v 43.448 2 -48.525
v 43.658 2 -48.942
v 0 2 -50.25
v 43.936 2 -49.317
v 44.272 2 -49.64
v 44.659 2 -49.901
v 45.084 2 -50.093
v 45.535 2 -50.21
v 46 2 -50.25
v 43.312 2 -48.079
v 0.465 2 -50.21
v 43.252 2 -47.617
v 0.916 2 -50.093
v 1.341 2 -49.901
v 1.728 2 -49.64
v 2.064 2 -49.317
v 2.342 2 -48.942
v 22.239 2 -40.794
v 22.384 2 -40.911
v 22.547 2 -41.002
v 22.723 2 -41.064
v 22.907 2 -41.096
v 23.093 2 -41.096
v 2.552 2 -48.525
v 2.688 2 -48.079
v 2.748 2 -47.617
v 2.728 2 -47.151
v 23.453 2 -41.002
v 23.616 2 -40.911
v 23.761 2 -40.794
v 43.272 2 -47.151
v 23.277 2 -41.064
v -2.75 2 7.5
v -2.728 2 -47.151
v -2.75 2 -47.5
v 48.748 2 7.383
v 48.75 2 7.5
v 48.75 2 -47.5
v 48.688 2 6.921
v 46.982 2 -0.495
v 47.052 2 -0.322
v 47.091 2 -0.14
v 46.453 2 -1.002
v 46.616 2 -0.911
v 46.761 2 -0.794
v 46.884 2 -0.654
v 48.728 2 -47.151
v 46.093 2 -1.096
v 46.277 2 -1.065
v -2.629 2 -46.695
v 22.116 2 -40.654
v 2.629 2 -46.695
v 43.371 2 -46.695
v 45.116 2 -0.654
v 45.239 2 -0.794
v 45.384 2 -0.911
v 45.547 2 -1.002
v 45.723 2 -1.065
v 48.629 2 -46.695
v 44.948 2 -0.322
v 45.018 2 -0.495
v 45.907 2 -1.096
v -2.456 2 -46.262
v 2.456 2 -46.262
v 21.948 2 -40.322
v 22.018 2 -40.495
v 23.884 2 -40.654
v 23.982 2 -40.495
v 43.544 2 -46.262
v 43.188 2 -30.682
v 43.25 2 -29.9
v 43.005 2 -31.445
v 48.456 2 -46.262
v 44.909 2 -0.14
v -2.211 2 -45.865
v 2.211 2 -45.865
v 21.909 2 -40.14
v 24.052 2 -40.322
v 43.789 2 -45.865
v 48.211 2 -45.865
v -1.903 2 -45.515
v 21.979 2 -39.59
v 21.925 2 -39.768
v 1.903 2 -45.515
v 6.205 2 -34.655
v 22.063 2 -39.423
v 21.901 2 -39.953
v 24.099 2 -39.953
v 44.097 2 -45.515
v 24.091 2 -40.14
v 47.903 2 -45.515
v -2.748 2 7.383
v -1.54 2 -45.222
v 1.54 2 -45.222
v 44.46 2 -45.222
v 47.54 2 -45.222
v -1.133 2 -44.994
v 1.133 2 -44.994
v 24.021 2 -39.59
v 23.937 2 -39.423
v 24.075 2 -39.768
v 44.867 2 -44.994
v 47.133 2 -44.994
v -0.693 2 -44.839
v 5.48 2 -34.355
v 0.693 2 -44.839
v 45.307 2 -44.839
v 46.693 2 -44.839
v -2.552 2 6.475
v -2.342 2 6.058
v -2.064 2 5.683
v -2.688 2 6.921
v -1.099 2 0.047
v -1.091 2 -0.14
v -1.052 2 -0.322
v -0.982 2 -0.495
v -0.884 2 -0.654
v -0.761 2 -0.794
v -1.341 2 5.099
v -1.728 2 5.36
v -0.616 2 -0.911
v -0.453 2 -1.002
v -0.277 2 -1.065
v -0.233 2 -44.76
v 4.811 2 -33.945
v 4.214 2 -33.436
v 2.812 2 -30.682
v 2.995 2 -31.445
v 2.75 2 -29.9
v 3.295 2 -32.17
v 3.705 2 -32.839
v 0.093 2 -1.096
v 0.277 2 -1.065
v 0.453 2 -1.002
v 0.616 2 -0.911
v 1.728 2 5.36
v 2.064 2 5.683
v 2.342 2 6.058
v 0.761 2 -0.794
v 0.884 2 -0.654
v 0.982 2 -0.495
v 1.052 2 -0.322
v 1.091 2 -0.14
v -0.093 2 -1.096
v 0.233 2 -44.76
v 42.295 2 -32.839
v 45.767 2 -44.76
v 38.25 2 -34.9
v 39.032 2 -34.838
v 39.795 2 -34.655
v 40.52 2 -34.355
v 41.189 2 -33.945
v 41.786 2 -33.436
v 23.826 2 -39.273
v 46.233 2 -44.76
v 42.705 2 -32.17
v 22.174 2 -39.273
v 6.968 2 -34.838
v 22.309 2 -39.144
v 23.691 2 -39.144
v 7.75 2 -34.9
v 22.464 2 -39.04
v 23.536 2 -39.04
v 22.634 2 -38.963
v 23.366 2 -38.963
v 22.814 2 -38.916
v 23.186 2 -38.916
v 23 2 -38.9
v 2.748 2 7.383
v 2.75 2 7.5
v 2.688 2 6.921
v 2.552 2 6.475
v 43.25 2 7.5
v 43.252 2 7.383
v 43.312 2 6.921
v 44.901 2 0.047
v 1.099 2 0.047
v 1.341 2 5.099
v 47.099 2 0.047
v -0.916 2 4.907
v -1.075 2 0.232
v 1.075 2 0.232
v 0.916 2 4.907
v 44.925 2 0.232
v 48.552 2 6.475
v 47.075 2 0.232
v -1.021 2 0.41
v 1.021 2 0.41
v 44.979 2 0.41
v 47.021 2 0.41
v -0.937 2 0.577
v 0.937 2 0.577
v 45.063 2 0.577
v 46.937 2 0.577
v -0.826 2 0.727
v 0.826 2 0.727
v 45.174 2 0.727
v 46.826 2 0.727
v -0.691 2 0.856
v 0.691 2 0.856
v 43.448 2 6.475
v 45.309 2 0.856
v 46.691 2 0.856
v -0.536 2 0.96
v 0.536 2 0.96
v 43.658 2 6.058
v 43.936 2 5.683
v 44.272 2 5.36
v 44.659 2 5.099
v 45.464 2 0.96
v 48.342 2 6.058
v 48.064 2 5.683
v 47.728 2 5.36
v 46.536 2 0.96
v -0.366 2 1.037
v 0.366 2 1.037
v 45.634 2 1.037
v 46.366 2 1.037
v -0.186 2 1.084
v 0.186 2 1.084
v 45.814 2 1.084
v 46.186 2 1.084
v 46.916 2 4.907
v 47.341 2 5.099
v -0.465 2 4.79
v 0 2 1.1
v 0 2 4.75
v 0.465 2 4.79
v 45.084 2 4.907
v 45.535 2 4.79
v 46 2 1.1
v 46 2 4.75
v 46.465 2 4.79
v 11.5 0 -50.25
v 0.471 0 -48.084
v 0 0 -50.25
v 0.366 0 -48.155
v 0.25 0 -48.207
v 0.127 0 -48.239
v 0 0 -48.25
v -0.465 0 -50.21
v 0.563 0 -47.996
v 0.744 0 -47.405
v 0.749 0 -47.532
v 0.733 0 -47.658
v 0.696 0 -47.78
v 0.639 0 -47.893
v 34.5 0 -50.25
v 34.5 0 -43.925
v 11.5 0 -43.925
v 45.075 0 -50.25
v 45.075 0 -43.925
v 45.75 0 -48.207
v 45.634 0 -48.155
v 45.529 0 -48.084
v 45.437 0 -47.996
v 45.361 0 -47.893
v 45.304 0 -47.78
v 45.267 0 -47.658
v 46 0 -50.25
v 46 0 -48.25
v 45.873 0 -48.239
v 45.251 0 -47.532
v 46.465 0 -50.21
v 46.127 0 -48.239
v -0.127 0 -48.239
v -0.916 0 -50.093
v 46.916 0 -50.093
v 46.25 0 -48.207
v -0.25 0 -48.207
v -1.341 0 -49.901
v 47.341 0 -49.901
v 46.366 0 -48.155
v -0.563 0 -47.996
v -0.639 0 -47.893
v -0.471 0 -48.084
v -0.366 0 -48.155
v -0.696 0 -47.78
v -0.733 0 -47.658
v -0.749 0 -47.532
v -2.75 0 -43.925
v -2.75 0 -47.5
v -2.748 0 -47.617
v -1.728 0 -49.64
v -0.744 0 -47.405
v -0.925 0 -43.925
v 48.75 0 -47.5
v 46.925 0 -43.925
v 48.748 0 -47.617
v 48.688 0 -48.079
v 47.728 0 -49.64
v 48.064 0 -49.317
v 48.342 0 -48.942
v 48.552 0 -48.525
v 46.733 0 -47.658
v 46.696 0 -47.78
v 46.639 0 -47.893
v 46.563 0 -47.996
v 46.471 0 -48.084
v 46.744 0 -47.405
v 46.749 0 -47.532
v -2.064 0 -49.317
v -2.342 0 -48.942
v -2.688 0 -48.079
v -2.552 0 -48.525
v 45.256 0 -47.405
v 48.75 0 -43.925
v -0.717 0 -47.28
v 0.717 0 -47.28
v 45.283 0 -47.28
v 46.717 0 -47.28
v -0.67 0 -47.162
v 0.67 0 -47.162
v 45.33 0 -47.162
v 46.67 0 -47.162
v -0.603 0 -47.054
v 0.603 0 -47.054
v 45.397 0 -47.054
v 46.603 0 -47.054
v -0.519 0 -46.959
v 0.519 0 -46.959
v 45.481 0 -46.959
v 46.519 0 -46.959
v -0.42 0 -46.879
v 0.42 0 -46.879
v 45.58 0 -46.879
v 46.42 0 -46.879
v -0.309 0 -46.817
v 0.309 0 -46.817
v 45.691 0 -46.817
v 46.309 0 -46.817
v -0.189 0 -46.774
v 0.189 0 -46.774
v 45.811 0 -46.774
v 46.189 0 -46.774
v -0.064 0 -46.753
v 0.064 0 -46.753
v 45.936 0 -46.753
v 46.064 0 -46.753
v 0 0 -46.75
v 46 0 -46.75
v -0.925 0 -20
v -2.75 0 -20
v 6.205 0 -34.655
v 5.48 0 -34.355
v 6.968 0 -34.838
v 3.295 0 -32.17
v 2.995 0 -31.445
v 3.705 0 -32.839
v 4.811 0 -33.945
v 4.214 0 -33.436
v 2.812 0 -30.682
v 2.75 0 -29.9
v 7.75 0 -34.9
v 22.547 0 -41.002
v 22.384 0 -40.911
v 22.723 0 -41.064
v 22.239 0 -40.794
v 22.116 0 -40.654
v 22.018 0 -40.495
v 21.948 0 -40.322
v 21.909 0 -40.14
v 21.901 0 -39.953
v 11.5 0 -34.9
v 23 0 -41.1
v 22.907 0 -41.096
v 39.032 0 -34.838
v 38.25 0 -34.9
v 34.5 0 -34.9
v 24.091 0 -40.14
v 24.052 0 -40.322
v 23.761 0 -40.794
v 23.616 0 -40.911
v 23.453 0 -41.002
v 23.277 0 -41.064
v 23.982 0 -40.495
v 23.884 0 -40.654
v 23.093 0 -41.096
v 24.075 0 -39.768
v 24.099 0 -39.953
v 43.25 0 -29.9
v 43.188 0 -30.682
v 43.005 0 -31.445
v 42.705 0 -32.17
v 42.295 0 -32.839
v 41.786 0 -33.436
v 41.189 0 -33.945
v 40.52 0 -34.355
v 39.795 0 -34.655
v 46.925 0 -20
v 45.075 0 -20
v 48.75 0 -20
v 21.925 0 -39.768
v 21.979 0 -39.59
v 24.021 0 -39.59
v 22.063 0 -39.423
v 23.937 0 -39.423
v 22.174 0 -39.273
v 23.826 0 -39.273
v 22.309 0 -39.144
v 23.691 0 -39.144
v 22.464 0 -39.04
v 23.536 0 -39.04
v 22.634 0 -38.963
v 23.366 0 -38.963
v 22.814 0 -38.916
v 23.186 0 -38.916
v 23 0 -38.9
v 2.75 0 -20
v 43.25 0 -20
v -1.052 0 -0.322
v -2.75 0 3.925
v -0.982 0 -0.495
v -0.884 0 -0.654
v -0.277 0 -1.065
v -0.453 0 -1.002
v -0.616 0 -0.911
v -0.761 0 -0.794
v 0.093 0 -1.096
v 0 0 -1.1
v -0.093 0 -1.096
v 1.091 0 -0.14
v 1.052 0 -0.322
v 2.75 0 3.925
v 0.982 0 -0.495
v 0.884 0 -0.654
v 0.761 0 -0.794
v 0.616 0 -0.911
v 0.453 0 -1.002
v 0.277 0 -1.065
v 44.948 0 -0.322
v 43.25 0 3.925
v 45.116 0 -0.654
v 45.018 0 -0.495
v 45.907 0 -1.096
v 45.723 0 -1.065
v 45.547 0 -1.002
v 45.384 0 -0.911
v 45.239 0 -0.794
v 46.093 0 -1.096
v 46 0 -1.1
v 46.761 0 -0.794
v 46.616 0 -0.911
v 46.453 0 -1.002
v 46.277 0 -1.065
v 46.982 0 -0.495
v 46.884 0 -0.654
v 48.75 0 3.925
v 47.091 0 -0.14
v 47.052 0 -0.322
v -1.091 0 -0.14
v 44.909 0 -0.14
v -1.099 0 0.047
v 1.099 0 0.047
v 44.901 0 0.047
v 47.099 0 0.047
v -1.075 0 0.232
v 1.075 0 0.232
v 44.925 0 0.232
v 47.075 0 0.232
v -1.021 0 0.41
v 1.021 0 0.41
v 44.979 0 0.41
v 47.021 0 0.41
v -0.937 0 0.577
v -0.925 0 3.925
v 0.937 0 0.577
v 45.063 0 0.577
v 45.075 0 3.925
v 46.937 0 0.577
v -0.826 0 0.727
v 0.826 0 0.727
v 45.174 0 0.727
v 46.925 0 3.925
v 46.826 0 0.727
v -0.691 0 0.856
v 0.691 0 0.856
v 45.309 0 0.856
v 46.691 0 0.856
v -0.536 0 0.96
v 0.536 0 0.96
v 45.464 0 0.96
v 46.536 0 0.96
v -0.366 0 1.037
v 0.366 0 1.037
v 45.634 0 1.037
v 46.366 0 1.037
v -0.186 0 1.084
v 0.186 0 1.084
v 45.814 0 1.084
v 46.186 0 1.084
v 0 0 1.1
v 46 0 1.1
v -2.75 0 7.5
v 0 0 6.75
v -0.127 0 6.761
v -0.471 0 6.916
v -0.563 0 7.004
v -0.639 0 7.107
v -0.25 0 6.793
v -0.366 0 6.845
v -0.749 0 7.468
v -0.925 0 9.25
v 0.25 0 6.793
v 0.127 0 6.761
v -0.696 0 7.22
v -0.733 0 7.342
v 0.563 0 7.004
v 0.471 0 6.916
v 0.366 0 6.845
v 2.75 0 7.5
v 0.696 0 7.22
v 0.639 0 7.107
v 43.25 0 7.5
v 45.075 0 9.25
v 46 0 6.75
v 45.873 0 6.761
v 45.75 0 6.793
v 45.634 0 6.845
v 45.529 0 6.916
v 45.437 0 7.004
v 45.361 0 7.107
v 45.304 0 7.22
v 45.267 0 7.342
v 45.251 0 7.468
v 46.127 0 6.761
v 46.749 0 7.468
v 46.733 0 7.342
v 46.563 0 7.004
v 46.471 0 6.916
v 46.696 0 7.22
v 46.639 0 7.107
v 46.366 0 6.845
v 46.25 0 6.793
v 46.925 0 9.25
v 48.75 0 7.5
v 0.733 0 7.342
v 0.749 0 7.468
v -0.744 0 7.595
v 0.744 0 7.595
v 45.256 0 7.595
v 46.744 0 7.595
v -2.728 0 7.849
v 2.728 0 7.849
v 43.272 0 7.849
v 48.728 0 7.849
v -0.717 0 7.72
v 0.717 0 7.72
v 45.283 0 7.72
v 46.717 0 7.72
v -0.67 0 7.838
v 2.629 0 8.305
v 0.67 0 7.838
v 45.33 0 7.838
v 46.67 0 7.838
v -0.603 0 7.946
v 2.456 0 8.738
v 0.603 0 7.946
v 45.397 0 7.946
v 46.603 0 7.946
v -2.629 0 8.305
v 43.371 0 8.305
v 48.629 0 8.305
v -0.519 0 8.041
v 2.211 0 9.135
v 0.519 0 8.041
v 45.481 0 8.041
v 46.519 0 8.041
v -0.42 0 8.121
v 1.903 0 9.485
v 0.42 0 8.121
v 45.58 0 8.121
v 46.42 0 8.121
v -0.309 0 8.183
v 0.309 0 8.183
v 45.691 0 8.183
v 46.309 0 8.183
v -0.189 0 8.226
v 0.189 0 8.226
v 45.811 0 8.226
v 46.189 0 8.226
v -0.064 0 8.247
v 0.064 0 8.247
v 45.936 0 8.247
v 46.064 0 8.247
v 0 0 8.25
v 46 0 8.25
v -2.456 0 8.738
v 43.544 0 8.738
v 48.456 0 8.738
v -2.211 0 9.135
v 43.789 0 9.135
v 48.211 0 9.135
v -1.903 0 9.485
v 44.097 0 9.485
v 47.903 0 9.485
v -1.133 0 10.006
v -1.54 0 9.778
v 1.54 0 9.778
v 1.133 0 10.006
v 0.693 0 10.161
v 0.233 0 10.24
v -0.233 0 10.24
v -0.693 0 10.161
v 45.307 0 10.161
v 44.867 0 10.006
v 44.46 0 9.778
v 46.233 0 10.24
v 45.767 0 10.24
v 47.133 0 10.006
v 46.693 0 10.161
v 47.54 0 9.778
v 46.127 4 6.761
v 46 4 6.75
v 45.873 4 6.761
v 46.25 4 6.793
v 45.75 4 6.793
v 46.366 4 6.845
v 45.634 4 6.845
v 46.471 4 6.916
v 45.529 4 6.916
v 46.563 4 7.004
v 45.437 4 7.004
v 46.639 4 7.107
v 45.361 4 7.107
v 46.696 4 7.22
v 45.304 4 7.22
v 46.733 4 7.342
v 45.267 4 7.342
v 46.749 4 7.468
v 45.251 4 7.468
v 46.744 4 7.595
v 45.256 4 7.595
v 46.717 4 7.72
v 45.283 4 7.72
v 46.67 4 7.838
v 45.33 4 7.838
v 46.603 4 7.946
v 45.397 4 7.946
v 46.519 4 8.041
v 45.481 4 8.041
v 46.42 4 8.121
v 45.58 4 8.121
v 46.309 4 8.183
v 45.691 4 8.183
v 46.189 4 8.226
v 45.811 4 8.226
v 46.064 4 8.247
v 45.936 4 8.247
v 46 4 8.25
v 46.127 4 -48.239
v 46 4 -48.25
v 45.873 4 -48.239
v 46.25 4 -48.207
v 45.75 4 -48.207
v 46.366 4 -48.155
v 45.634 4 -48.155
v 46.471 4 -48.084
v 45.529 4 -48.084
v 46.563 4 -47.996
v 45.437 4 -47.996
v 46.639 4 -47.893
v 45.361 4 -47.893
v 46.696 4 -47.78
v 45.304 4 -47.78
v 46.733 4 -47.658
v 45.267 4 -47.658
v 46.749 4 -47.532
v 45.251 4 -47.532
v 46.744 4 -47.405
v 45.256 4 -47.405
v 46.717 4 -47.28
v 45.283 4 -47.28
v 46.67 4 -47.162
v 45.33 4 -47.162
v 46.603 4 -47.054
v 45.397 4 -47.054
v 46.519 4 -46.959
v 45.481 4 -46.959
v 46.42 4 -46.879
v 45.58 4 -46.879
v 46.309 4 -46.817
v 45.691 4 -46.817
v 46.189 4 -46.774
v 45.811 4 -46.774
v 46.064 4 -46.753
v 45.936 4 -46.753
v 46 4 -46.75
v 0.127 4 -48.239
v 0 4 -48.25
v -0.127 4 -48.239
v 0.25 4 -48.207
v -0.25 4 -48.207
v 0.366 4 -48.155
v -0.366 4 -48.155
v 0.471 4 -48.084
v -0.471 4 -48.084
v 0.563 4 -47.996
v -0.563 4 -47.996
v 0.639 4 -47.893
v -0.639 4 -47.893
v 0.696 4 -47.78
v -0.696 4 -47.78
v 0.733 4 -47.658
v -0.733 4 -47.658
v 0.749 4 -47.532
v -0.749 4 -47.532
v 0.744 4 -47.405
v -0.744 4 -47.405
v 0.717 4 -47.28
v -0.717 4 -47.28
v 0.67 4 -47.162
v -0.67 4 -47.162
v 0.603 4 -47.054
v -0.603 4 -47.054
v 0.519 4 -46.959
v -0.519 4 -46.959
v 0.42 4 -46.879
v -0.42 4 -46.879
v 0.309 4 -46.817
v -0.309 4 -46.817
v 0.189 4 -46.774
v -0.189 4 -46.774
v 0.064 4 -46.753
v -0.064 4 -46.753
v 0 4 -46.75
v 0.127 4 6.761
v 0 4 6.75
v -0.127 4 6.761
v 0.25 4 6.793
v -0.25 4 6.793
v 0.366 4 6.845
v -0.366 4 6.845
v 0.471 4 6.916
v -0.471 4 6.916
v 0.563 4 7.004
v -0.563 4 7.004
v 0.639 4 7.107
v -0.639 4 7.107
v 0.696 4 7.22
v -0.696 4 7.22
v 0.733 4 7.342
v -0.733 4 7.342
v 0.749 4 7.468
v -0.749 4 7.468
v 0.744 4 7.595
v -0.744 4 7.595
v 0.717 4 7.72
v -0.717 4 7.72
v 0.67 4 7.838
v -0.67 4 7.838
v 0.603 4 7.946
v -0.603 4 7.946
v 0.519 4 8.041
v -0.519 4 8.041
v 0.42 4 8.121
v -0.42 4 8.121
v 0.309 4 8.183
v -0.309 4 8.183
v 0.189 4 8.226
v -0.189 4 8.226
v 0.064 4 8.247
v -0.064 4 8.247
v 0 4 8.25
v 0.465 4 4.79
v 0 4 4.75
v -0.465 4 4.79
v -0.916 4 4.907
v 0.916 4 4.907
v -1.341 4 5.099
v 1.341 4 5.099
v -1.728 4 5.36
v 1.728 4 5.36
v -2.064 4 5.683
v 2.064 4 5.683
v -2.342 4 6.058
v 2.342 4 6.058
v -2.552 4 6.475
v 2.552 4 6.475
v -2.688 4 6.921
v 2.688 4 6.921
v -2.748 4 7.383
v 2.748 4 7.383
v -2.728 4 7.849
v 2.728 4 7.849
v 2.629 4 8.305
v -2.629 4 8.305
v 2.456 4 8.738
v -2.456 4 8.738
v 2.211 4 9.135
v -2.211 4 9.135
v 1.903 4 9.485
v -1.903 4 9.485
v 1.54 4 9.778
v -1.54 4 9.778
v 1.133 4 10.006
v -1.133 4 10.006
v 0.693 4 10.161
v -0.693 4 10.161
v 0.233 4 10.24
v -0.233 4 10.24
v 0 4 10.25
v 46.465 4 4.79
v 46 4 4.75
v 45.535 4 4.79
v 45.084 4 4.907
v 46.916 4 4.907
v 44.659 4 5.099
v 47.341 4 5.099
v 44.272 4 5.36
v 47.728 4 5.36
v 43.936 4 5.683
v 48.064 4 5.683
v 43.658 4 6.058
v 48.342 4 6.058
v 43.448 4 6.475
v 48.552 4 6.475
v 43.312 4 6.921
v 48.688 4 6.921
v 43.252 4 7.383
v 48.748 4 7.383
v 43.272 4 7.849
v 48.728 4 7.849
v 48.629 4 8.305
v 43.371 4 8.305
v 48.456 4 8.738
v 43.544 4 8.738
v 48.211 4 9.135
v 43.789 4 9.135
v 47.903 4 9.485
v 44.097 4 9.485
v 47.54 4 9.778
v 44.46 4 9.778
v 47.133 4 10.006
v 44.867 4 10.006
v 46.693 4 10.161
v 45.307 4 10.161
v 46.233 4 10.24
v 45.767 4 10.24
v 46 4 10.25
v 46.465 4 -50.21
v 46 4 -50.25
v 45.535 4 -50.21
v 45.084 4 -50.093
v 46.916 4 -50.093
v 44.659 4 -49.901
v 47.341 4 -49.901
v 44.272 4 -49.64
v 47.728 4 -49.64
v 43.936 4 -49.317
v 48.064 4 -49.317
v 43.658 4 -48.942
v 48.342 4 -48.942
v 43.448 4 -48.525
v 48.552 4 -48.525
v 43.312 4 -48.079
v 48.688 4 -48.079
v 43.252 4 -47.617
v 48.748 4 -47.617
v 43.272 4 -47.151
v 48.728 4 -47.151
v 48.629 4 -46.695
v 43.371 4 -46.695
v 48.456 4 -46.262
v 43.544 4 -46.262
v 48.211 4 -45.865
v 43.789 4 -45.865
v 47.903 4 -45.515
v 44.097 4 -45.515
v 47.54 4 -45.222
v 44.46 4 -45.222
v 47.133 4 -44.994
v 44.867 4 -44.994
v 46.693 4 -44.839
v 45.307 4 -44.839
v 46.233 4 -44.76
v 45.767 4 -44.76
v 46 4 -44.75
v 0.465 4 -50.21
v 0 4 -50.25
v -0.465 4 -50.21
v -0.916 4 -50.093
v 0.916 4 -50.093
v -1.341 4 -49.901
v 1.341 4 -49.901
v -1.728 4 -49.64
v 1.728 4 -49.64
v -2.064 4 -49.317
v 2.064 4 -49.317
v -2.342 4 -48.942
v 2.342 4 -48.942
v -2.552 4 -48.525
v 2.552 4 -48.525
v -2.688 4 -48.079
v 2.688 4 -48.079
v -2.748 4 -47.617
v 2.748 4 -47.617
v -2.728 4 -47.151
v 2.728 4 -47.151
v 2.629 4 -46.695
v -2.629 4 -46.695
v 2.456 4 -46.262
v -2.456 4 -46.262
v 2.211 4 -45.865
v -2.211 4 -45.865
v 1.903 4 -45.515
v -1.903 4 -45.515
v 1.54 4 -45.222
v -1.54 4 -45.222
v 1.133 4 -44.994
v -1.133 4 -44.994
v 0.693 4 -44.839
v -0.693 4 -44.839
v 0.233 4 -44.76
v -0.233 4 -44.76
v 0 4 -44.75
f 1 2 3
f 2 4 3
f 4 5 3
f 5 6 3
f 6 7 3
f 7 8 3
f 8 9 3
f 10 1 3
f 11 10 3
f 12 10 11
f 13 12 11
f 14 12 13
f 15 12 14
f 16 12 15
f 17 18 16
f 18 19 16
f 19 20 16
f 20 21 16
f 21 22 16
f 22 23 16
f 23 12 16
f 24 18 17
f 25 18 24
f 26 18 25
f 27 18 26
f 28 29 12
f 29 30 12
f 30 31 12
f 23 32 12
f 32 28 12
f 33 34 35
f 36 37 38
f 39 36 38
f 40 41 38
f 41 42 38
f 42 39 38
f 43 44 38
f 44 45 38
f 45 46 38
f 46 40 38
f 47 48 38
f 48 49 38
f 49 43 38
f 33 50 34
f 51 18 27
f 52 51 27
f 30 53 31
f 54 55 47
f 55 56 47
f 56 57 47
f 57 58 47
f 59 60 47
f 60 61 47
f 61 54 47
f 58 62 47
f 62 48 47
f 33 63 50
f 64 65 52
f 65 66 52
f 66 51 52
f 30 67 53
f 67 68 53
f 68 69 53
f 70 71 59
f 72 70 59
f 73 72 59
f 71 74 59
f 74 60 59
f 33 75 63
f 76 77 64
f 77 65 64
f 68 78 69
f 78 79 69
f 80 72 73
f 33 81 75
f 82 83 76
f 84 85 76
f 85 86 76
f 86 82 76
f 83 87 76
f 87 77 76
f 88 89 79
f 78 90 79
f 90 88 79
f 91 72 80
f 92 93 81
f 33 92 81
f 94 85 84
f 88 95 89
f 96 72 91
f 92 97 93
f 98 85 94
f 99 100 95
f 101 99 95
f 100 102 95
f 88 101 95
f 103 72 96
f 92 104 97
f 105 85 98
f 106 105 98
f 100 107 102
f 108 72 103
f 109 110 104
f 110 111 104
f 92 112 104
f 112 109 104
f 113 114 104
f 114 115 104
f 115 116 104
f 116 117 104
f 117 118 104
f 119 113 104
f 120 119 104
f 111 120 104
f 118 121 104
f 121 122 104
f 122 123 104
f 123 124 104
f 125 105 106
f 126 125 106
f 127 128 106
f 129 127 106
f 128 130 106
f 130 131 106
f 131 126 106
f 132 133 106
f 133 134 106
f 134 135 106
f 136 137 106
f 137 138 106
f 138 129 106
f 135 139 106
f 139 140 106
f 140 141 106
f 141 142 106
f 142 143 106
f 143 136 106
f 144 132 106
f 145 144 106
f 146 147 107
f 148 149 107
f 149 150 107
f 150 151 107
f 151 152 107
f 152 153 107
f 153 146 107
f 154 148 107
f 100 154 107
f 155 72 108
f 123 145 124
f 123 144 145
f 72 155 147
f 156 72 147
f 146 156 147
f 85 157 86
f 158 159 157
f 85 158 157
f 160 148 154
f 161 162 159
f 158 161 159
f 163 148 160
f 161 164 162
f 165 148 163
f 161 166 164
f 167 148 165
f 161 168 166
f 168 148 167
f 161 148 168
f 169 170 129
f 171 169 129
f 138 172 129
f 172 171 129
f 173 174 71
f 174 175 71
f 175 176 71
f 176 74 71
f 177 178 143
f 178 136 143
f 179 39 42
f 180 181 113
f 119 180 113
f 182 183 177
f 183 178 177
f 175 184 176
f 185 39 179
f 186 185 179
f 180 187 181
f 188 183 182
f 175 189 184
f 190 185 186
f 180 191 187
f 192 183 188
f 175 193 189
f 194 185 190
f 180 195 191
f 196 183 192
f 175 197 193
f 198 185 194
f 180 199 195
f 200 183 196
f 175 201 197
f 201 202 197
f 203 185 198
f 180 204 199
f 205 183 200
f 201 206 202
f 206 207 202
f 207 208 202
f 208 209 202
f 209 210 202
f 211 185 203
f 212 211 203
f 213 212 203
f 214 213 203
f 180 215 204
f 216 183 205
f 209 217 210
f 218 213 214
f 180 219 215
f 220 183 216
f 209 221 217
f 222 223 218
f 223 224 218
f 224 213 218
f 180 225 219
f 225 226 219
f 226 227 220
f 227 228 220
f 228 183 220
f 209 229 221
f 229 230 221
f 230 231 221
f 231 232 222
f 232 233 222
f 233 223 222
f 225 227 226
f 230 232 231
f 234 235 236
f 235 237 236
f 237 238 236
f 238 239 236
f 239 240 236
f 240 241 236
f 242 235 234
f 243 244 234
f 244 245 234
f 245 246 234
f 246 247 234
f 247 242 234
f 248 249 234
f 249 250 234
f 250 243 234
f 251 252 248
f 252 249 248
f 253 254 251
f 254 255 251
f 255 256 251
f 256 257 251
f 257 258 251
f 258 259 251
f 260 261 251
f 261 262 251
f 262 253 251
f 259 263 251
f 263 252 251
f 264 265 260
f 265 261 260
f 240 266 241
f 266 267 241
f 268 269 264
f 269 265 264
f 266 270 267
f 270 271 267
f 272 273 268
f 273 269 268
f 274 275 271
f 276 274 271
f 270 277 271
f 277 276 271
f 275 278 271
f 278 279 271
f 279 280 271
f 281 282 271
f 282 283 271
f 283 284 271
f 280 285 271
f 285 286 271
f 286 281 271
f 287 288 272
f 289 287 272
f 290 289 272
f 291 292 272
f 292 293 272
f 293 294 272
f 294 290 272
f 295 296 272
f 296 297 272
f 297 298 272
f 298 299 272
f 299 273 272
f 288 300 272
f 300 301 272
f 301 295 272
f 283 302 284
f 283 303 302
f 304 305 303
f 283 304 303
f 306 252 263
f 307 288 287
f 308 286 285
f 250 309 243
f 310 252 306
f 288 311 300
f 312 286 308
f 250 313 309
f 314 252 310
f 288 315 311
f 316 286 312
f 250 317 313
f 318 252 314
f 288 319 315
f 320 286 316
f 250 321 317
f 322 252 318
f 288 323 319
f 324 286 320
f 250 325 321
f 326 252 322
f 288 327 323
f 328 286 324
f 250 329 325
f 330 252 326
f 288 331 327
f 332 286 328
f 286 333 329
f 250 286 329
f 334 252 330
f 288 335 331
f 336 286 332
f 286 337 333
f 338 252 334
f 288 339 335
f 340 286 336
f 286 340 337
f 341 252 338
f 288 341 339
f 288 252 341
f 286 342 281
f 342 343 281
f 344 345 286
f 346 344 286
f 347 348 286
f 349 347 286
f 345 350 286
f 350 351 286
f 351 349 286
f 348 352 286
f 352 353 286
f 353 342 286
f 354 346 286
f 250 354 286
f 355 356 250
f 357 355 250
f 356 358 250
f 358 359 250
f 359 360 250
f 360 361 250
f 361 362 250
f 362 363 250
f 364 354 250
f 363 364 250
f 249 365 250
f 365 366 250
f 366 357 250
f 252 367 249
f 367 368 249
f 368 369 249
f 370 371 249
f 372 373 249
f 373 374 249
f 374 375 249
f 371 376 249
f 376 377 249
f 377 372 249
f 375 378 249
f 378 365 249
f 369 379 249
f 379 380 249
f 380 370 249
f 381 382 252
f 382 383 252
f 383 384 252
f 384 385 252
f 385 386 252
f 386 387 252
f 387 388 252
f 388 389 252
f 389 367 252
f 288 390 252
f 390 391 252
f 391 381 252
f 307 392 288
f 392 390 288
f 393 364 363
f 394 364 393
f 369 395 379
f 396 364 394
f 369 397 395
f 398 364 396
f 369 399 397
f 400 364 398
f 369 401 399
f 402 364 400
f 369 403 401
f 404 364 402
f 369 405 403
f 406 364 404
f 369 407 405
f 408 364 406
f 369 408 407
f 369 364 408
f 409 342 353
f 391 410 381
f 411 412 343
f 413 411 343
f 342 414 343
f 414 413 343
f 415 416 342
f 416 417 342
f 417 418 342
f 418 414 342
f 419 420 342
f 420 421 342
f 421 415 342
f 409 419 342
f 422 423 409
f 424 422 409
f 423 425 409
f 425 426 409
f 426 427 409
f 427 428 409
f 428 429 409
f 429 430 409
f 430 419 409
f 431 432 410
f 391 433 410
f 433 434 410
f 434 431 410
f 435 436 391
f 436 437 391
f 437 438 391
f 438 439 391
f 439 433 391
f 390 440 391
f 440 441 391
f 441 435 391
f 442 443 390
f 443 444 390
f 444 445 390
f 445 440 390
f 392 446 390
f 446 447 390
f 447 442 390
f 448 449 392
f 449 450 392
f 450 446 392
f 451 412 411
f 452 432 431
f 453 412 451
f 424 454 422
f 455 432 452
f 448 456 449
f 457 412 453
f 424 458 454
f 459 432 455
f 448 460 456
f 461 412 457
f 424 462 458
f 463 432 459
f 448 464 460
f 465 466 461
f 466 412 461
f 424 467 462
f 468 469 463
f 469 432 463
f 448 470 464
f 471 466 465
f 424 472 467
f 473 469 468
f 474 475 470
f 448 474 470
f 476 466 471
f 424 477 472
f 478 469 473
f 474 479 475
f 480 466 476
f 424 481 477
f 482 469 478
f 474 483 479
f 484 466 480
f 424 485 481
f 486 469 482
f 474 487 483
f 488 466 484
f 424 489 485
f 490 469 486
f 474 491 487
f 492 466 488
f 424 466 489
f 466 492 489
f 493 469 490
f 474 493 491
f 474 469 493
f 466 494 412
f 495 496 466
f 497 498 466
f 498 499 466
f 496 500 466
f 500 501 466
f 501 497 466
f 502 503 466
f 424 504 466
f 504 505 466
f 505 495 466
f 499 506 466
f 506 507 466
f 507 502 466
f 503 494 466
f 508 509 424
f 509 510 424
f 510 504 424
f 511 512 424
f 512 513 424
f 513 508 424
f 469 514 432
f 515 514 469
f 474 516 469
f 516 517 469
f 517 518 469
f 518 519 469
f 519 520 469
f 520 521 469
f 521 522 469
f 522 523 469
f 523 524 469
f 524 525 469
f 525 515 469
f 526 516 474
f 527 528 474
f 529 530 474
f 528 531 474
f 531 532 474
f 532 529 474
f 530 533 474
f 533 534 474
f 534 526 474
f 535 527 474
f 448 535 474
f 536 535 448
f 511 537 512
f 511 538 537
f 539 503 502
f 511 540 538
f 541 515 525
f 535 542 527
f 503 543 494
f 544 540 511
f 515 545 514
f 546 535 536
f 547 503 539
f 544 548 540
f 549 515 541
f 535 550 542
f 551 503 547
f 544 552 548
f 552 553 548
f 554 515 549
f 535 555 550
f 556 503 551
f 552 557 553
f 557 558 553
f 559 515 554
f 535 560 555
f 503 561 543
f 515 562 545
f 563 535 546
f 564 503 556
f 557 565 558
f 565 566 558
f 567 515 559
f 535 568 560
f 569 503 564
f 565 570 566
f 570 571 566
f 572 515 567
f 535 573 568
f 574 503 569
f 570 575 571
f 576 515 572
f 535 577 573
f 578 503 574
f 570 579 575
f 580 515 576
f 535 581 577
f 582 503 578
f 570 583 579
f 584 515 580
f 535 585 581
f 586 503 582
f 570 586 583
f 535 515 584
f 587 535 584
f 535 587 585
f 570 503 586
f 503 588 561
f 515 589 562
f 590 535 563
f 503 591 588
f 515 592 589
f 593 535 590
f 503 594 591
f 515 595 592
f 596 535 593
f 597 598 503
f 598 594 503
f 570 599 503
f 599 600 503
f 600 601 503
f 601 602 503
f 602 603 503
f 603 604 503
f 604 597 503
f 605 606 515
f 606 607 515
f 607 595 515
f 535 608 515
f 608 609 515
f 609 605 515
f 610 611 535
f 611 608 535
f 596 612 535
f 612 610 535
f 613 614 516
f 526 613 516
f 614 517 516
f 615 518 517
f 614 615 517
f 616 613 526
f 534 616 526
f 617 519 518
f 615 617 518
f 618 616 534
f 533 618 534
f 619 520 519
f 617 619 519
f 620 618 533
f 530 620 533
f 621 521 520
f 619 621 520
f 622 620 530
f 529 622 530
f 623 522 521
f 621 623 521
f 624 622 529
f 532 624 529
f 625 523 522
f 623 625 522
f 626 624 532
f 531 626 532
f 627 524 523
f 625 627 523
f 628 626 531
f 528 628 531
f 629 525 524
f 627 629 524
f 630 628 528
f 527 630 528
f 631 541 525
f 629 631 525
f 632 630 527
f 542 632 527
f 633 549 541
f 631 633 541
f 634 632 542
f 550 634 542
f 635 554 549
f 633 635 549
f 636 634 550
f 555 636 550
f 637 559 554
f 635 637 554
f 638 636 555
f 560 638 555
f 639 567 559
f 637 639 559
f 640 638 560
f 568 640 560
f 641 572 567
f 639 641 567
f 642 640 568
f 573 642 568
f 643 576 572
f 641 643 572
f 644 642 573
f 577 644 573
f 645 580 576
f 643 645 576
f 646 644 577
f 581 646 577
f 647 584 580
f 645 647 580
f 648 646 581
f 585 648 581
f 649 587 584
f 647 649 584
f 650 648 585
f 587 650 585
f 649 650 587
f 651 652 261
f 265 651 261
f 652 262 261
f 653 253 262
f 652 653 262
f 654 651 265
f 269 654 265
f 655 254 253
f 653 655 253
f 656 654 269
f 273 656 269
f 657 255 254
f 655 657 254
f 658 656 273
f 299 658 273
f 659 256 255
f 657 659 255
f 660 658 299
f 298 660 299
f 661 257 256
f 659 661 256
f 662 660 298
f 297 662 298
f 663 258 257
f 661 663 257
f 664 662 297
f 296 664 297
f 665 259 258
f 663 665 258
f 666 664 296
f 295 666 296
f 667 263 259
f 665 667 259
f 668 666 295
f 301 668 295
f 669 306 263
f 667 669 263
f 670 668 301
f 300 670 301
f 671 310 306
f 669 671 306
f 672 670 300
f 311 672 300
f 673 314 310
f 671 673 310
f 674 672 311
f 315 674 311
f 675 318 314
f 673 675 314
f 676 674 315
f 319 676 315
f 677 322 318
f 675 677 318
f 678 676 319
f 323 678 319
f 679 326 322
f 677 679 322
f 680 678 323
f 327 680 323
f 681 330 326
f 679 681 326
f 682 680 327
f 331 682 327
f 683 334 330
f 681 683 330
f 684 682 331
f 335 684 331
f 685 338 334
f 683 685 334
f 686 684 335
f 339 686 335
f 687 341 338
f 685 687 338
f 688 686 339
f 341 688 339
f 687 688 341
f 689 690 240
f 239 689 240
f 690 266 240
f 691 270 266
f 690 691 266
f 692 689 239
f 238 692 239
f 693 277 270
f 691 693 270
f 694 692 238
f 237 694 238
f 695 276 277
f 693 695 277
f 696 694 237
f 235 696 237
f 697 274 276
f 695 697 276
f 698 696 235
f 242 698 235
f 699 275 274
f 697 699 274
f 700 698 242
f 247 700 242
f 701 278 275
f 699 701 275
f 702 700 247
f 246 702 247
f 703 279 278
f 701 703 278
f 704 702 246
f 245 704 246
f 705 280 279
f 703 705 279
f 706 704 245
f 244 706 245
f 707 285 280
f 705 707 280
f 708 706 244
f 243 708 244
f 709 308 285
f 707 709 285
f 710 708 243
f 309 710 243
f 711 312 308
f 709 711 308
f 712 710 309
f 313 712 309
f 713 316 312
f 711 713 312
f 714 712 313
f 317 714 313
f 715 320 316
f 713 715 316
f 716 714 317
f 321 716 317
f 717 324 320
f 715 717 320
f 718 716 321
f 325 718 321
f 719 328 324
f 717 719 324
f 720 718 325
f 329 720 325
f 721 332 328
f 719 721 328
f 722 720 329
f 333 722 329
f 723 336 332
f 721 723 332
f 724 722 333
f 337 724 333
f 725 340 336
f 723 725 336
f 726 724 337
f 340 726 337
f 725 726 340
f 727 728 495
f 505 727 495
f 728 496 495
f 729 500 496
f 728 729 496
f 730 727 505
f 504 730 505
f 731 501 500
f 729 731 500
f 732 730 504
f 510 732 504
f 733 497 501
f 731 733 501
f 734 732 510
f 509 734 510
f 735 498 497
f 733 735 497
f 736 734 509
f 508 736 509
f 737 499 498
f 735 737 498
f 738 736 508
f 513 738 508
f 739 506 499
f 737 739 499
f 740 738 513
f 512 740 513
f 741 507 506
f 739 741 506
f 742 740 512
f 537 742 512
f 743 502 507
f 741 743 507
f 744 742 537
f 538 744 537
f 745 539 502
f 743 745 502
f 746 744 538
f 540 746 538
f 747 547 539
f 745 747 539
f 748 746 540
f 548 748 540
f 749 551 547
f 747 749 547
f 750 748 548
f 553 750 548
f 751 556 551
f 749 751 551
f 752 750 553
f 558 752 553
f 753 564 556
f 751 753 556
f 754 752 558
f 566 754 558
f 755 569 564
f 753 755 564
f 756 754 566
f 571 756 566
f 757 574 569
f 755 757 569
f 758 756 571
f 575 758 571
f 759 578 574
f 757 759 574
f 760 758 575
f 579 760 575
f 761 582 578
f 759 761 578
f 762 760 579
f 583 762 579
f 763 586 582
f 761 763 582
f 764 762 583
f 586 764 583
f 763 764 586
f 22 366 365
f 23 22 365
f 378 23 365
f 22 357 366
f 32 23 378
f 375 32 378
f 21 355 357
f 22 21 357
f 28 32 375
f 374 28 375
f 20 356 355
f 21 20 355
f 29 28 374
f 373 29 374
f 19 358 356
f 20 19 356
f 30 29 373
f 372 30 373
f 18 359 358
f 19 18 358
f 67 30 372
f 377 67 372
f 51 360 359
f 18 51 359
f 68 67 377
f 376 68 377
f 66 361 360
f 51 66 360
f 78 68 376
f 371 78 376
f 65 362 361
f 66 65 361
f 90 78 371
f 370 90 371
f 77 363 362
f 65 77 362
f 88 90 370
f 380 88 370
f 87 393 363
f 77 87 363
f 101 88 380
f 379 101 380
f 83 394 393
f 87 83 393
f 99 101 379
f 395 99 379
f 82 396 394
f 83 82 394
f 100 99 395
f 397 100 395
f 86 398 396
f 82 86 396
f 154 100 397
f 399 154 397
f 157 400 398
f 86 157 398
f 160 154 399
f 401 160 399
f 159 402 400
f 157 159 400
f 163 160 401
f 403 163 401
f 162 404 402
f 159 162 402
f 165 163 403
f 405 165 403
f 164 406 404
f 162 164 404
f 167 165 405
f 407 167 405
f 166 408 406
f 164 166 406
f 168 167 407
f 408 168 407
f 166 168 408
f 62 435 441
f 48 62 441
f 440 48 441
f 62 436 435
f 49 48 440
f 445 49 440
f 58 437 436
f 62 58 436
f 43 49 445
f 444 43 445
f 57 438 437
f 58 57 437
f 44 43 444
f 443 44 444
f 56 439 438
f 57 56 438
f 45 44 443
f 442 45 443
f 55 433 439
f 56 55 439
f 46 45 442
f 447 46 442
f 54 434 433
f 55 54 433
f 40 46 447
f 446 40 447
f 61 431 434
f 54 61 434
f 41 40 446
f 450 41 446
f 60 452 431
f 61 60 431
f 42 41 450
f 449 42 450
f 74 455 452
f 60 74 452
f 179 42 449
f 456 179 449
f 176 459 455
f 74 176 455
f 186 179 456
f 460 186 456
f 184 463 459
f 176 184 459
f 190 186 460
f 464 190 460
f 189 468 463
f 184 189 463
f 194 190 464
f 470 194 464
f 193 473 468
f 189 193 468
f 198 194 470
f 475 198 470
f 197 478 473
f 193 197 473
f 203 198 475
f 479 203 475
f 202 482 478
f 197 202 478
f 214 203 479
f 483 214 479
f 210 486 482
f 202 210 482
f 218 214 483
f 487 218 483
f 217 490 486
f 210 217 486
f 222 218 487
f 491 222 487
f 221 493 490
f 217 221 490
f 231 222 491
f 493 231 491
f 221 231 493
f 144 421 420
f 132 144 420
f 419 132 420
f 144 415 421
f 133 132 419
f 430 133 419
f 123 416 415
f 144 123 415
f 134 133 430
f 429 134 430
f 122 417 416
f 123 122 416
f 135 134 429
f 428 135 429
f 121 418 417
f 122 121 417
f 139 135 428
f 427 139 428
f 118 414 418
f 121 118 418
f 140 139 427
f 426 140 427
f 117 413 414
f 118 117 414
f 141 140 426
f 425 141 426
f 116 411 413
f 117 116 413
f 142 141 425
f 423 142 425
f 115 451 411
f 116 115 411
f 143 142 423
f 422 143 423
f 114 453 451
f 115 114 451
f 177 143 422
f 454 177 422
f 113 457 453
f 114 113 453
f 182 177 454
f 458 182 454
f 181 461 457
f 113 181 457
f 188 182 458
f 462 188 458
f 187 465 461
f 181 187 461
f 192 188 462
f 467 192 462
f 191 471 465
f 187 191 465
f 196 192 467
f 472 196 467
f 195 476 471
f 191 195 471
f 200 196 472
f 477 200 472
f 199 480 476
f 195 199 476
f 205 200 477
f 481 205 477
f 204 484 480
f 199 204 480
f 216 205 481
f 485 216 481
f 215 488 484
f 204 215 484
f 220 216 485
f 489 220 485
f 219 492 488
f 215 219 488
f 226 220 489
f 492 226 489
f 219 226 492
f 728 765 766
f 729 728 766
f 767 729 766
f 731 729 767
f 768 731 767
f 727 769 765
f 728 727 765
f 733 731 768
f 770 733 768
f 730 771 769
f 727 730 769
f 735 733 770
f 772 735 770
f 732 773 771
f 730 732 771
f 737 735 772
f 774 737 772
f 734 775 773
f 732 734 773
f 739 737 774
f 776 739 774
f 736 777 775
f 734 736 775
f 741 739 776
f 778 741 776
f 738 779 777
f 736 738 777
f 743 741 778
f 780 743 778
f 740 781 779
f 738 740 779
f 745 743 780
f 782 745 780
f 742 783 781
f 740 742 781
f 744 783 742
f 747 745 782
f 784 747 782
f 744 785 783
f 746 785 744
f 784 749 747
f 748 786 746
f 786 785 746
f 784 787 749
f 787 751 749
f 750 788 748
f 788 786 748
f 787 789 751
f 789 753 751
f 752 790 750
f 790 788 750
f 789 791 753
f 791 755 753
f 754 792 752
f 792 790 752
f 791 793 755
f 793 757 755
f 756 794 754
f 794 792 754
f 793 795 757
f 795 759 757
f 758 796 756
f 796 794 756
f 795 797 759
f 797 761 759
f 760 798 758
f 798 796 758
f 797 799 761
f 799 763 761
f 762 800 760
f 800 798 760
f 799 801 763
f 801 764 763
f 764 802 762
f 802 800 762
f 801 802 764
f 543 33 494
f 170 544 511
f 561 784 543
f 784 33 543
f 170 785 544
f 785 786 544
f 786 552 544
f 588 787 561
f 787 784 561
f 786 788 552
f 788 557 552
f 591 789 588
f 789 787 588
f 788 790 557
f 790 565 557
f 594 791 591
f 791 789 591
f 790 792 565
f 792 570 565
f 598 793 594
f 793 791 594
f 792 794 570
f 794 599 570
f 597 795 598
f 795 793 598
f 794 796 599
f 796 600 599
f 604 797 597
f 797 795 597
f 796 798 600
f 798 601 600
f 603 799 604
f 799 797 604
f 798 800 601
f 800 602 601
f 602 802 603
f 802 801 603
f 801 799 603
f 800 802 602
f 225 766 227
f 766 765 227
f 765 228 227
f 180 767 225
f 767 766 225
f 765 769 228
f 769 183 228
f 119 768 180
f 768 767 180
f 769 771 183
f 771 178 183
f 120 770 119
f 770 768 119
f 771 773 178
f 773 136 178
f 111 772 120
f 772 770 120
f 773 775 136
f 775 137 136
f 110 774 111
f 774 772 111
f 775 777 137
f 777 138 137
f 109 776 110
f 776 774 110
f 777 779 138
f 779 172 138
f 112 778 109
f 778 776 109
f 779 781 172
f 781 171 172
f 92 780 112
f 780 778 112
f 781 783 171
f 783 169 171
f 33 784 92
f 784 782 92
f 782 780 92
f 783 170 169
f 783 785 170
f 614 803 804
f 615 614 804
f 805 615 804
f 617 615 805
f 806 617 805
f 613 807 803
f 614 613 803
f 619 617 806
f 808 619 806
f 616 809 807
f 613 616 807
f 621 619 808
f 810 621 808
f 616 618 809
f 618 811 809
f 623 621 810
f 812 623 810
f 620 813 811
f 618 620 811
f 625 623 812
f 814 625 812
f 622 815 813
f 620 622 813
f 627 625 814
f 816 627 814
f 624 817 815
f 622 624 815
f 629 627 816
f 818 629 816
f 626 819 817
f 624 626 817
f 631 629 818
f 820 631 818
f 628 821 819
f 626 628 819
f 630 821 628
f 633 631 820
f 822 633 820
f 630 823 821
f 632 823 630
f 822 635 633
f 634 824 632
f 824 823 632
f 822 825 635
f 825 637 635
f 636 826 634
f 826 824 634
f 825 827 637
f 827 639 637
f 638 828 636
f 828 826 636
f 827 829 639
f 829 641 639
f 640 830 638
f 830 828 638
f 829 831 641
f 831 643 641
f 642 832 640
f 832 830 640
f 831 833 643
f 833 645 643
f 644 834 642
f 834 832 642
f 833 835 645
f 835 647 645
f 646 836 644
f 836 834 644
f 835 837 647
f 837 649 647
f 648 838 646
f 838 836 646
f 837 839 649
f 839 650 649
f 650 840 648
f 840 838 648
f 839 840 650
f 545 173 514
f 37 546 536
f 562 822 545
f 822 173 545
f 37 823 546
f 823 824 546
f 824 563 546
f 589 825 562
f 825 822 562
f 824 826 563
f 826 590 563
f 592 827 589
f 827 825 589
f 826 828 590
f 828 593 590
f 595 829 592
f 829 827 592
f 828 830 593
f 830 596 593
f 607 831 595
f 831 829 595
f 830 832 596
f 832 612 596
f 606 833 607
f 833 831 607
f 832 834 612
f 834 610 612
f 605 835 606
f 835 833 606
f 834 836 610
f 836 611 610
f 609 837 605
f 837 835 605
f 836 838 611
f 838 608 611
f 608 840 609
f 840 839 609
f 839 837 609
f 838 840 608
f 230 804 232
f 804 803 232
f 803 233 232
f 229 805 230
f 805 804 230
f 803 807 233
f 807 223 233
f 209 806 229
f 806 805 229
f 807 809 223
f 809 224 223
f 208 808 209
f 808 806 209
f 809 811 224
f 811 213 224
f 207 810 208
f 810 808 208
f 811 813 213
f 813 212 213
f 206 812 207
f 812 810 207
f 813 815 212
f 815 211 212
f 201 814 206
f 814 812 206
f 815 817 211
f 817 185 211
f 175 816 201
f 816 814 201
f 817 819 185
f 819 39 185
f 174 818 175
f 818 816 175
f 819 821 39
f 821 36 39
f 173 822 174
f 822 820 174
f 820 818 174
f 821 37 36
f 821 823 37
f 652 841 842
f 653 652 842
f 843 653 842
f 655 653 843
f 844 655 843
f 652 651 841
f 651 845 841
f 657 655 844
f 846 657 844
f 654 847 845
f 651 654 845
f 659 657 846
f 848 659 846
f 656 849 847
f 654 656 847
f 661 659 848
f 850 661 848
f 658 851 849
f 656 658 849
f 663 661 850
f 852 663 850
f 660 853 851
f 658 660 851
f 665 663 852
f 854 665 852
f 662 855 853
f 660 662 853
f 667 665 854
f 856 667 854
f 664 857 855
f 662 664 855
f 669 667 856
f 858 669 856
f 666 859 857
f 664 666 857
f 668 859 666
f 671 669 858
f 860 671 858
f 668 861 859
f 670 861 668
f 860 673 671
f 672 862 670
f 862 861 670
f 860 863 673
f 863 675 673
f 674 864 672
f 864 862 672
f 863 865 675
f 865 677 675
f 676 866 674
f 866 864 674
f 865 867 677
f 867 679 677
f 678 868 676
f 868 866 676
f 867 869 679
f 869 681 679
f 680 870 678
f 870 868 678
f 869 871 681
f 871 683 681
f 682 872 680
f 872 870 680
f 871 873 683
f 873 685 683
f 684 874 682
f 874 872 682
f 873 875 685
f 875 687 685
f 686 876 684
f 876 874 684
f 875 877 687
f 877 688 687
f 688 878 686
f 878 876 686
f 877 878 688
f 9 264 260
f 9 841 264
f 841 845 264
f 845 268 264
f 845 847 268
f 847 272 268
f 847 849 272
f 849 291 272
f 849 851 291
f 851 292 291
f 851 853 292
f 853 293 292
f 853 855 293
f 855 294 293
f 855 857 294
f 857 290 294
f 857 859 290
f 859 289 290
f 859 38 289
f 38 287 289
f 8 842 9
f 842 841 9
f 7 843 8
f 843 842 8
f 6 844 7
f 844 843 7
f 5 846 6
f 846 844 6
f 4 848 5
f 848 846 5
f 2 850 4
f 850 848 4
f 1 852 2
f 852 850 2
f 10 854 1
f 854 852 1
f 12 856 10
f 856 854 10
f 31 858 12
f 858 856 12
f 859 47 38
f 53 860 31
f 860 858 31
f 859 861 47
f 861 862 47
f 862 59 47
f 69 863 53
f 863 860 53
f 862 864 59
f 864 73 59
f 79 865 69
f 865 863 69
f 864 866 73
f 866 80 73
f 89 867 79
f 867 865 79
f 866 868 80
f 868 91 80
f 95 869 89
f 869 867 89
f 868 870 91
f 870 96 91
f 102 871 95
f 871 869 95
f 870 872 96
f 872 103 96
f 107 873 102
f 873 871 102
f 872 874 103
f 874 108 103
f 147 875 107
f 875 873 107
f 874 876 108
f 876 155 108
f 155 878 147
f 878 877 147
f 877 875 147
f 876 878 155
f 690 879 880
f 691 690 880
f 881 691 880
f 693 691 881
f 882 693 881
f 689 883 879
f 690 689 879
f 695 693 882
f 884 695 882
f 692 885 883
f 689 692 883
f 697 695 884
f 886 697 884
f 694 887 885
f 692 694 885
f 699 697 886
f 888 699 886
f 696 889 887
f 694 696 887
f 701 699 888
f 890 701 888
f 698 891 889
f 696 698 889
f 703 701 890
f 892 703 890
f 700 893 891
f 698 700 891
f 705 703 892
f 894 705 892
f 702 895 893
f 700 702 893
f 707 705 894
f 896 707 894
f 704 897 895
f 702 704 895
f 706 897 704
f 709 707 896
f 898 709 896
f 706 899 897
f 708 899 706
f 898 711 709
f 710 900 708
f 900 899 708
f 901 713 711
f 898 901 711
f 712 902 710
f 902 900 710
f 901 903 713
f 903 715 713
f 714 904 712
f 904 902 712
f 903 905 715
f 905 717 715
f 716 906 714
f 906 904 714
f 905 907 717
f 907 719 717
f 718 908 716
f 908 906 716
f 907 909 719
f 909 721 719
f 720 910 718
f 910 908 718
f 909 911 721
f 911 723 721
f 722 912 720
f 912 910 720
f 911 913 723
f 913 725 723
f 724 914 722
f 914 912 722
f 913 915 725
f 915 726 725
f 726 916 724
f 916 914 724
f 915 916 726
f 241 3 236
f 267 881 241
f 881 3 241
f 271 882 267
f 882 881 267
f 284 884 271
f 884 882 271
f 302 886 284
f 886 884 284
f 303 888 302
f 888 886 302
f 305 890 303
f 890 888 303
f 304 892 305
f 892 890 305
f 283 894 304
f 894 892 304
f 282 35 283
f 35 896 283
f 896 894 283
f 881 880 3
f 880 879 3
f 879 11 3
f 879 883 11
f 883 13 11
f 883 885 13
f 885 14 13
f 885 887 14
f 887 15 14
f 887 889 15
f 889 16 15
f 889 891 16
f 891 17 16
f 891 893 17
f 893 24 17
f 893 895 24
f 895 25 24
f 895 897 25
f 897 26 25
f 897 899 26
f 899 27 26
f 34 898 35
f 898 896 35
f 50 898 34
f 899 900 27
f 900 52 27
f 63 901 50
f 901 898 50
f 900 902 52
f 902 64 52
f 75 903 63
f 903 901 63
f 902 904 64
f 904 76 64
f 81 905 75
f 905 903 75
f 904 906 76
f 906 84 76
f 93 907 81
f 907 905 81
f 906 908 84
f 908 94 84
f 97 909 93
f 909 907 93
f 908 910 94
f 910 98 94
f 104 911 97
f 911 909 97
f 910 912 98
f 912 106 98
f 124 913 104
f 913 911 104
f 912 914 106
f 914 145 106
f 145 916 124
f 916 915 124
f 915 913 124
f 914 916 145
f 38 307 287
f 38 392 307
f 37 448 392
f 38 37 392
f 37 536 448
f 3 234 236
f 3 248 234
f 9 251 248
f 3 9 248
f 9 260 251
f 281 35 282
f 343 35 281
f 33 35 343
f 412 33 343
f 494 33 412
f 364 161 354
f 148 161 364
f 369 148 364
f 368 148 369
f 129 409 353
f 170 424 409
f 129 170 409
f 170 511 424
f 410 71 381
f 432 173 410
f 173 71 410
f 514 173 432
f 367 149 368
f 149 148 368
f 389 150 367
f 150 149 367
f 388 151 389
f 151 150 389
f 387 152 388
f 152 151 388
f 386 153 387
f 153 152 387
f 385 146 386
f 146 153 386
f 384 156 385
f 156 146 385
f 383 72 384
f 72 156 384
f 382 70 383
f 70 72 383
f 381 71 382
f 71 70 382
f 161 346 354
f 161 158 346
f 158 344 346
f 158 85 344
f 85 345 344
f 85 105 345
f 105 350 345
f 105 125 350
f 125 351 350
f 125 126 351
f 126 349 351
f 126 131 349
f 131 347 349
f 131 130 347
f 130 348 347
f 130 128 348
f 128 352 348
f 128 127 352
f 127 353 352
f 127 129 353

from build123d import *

# Parameters (mm, degrees)
SKETCH2_W               = 54
SKETCH2_H               = 63
SKETCH2_R               = 0.75
BOSS_EXTRUDE1_DEPTH     = 2
SKETCH1_R               = 1.1
CUT_EXTRUDE2_DEPTH      = 3
CUT_EXTRUDE2_DEPTH_BACK = 1
SKETCH3_R               = 2.75
SKETCH3_R_2             = 0.75
BOSS_EXTRUDE2_DEPTH     = 2
SKETCH4_OUTSIDE_W       = 72.614
SKETCH4_OUTSIDE_H       = 81.614
CUT_EXTRUDE3_DEPTH      = 3
CUT_EXTRUDE3_DEPTH_BACK = 3
CUT_EXTRUDE4_DEPTH      = 3
CUT_EXTRUDE4_DEPTH_BACK = 3
FILLET1_R               = 5


with BuildPart() as part:
    # Sketch2 → Boss-Extrude1 (new body)
    with BuildSketch(Plane(origin=(0, 0, 0), x_dir=(1, 0, 0), z_dir=(0, 1, 0))):
        with Locations((23, 20)):
            Rectangle(SKETCH2_W, SKETCH2_H)
        with Locations((46, -7.5)):
            Circle(SKETCH2_R, mode=Mode.SUBTRACT)
        with Locations((46, 47.5)):
            Circle(SKETCH2_R, mode=Mode.SUBTRACT)
        with Locations((0, 47.5)):
            Circle(SKETCH2_R, mode=Mode.SUBTRACT)
        with Locations((0, -7.5)):
            Circle(SKETCH2_R, mode=Mode.SUBTRACT)
    extrude(amount=BOSS_EXTRUDE1_DEPTH)

    # Sketch1 → Cut-Extrude2 (cut, two sides)
    with BuildSketch(Plane(origin=(0, 0, 0), x_dir=(1, 0, 0), z_dir=(0, 1, 0))) as cut_extrude2_sk:
        Circle(SKETCH1_R)
        with Locations((46, 0)):
            Circle(SKETCH1_R)
        with Locations((23, 40)):
            Circle(SKETCH1_R)
    extrude(amount=CUT_EXTRUDE2_DEPTH, mode=Mode.SUBTRACT)
    extrude(cut_extrude2_sk.sketch, amount=-CUT_EXTRUDE2_DEPTH_BACK, mode=Mode.SUBTRACT)

    # Sketch3 → Boss-Extrude2 (add)
    with BuildSketch(Plane(origin=(0, 2, 0), x_dir=(1, 0, 0), z_dir=(0, 1, 0))):
        with Locations((0, -7.5)):
            Circle(SKETCH3_R)
        with Locations((0, -7.5)):
            Circle(SKETCH3_R_2, mode=Mode.SUBTRACT)
        with Locations((46, -7.5)):
            Circle(SKETCH3_R)
        with Locations((46, -7.5)):
            Circle(SKETCH3_R_2, mode=Mode.SUBTRACT)
        with Locations((46, 47.5)):
            Circle(SKETCH3_R)
        with Locations((46, 47.5)):
            Circle(SKETCH3_R_2, mode=Mode.SUBTRACT)
        with Locations((0, 47.5)):
            Circle(SKETCH3_R)
        with Locations((0, 47.5)):
            Circle(SKETCH3_R_2, mode=Mode.SUBTRACT)
    extrude(amount=BOSS_EXTRUDE2_DEPTH)

    # Sketch4 outside → Cut-Extrude3 (cut, two sides)
    with BuildSketch(Plane(origin=(0, 2, 0), x_dir=(1, 0, 0), z_dir=(0, 1, 0))) as cut_extrude3_sk:
        with Locations((23, 20)):
            Rectangle(SKETCH4_OUTSIDE_W, SKETCH4_OUTSIDE_H)
        with BuildLine():
            Line((0, -10.25), (46, -10.25))
            ThreePointArc((46, -10.25), (47.944543648, -9.444543648), (48.75, -7.5))
            Line((48.75, -7.5), (48.75, 47.5))
            ThreePointArc((48.75, 47.5), (47.944543648, 49.444543648), (46, 50.25))
            Line((46, 50.25), (0, 50.25))
            ThreePointArc((0, 50.25), (-1.944543648, 49.444543648), (-2.75, 47.5))
            Line((-2.75, 47.5), (-2.75, -7.5))
            ThreePointArc((-2.75, -7.5), (-1.944543648, -9.444543648), (0, -10.25))
        make_face(mode=Mode.SUBTRACT)
    extrude(amount=CUT_EXTRUDE3_DEPTH, mode=Mode.SUBTRACT)
    extrude(cut_extrude3_sk.sketch, amount=-CUT_EXTRUDE3_DEPTH_BACK, mode=Mode.SUBTRACT)

    # Sketch5 → Cut-Extrude4 (cut, two sides)
    with BuildSketch(Plane(origin=(0, 2, 0), x_dir=(1, 0, 0), z_dir=(0, 1, 0))) as cut_extrude4_sk:
        with BuildLine():
            Line((2.75, 34.9), (2.75, -7.5))
            ThreePointArc((2.75, -7.5), (1.944543648, -9.444543648), (0, -10.25))
            Line((0, -10.25), (46, -10.25))
            ThreePointArc((46, -10.25), (44.055456352, -9.444543648), (43.25, -7.5))
            Line((43.25, -7.5), (43.25, 34.9))
            Line((43.25, 34.9), (2.75, 34.9))
        make_face()
    extrude(amount=CUT_EXTRUDE4_DEPTH, mode=Mode.SUBTRACT)
    extrude(cut_extrude4_sk.sketch, amount=-CUT_EXTRUDE4_DEPTH_BACK, mode=Mode.SUBTRACT)

    # Fillet1
    fillet1_edges = [part.edges().sort_by_distance(p)[0] for p in [
        (2.75, 1, -34.9),
        (43.25, 1, -34.9),
    ]]
    fillet(fillet1_edges, radius=FILLET1_R)


solid = part.part
